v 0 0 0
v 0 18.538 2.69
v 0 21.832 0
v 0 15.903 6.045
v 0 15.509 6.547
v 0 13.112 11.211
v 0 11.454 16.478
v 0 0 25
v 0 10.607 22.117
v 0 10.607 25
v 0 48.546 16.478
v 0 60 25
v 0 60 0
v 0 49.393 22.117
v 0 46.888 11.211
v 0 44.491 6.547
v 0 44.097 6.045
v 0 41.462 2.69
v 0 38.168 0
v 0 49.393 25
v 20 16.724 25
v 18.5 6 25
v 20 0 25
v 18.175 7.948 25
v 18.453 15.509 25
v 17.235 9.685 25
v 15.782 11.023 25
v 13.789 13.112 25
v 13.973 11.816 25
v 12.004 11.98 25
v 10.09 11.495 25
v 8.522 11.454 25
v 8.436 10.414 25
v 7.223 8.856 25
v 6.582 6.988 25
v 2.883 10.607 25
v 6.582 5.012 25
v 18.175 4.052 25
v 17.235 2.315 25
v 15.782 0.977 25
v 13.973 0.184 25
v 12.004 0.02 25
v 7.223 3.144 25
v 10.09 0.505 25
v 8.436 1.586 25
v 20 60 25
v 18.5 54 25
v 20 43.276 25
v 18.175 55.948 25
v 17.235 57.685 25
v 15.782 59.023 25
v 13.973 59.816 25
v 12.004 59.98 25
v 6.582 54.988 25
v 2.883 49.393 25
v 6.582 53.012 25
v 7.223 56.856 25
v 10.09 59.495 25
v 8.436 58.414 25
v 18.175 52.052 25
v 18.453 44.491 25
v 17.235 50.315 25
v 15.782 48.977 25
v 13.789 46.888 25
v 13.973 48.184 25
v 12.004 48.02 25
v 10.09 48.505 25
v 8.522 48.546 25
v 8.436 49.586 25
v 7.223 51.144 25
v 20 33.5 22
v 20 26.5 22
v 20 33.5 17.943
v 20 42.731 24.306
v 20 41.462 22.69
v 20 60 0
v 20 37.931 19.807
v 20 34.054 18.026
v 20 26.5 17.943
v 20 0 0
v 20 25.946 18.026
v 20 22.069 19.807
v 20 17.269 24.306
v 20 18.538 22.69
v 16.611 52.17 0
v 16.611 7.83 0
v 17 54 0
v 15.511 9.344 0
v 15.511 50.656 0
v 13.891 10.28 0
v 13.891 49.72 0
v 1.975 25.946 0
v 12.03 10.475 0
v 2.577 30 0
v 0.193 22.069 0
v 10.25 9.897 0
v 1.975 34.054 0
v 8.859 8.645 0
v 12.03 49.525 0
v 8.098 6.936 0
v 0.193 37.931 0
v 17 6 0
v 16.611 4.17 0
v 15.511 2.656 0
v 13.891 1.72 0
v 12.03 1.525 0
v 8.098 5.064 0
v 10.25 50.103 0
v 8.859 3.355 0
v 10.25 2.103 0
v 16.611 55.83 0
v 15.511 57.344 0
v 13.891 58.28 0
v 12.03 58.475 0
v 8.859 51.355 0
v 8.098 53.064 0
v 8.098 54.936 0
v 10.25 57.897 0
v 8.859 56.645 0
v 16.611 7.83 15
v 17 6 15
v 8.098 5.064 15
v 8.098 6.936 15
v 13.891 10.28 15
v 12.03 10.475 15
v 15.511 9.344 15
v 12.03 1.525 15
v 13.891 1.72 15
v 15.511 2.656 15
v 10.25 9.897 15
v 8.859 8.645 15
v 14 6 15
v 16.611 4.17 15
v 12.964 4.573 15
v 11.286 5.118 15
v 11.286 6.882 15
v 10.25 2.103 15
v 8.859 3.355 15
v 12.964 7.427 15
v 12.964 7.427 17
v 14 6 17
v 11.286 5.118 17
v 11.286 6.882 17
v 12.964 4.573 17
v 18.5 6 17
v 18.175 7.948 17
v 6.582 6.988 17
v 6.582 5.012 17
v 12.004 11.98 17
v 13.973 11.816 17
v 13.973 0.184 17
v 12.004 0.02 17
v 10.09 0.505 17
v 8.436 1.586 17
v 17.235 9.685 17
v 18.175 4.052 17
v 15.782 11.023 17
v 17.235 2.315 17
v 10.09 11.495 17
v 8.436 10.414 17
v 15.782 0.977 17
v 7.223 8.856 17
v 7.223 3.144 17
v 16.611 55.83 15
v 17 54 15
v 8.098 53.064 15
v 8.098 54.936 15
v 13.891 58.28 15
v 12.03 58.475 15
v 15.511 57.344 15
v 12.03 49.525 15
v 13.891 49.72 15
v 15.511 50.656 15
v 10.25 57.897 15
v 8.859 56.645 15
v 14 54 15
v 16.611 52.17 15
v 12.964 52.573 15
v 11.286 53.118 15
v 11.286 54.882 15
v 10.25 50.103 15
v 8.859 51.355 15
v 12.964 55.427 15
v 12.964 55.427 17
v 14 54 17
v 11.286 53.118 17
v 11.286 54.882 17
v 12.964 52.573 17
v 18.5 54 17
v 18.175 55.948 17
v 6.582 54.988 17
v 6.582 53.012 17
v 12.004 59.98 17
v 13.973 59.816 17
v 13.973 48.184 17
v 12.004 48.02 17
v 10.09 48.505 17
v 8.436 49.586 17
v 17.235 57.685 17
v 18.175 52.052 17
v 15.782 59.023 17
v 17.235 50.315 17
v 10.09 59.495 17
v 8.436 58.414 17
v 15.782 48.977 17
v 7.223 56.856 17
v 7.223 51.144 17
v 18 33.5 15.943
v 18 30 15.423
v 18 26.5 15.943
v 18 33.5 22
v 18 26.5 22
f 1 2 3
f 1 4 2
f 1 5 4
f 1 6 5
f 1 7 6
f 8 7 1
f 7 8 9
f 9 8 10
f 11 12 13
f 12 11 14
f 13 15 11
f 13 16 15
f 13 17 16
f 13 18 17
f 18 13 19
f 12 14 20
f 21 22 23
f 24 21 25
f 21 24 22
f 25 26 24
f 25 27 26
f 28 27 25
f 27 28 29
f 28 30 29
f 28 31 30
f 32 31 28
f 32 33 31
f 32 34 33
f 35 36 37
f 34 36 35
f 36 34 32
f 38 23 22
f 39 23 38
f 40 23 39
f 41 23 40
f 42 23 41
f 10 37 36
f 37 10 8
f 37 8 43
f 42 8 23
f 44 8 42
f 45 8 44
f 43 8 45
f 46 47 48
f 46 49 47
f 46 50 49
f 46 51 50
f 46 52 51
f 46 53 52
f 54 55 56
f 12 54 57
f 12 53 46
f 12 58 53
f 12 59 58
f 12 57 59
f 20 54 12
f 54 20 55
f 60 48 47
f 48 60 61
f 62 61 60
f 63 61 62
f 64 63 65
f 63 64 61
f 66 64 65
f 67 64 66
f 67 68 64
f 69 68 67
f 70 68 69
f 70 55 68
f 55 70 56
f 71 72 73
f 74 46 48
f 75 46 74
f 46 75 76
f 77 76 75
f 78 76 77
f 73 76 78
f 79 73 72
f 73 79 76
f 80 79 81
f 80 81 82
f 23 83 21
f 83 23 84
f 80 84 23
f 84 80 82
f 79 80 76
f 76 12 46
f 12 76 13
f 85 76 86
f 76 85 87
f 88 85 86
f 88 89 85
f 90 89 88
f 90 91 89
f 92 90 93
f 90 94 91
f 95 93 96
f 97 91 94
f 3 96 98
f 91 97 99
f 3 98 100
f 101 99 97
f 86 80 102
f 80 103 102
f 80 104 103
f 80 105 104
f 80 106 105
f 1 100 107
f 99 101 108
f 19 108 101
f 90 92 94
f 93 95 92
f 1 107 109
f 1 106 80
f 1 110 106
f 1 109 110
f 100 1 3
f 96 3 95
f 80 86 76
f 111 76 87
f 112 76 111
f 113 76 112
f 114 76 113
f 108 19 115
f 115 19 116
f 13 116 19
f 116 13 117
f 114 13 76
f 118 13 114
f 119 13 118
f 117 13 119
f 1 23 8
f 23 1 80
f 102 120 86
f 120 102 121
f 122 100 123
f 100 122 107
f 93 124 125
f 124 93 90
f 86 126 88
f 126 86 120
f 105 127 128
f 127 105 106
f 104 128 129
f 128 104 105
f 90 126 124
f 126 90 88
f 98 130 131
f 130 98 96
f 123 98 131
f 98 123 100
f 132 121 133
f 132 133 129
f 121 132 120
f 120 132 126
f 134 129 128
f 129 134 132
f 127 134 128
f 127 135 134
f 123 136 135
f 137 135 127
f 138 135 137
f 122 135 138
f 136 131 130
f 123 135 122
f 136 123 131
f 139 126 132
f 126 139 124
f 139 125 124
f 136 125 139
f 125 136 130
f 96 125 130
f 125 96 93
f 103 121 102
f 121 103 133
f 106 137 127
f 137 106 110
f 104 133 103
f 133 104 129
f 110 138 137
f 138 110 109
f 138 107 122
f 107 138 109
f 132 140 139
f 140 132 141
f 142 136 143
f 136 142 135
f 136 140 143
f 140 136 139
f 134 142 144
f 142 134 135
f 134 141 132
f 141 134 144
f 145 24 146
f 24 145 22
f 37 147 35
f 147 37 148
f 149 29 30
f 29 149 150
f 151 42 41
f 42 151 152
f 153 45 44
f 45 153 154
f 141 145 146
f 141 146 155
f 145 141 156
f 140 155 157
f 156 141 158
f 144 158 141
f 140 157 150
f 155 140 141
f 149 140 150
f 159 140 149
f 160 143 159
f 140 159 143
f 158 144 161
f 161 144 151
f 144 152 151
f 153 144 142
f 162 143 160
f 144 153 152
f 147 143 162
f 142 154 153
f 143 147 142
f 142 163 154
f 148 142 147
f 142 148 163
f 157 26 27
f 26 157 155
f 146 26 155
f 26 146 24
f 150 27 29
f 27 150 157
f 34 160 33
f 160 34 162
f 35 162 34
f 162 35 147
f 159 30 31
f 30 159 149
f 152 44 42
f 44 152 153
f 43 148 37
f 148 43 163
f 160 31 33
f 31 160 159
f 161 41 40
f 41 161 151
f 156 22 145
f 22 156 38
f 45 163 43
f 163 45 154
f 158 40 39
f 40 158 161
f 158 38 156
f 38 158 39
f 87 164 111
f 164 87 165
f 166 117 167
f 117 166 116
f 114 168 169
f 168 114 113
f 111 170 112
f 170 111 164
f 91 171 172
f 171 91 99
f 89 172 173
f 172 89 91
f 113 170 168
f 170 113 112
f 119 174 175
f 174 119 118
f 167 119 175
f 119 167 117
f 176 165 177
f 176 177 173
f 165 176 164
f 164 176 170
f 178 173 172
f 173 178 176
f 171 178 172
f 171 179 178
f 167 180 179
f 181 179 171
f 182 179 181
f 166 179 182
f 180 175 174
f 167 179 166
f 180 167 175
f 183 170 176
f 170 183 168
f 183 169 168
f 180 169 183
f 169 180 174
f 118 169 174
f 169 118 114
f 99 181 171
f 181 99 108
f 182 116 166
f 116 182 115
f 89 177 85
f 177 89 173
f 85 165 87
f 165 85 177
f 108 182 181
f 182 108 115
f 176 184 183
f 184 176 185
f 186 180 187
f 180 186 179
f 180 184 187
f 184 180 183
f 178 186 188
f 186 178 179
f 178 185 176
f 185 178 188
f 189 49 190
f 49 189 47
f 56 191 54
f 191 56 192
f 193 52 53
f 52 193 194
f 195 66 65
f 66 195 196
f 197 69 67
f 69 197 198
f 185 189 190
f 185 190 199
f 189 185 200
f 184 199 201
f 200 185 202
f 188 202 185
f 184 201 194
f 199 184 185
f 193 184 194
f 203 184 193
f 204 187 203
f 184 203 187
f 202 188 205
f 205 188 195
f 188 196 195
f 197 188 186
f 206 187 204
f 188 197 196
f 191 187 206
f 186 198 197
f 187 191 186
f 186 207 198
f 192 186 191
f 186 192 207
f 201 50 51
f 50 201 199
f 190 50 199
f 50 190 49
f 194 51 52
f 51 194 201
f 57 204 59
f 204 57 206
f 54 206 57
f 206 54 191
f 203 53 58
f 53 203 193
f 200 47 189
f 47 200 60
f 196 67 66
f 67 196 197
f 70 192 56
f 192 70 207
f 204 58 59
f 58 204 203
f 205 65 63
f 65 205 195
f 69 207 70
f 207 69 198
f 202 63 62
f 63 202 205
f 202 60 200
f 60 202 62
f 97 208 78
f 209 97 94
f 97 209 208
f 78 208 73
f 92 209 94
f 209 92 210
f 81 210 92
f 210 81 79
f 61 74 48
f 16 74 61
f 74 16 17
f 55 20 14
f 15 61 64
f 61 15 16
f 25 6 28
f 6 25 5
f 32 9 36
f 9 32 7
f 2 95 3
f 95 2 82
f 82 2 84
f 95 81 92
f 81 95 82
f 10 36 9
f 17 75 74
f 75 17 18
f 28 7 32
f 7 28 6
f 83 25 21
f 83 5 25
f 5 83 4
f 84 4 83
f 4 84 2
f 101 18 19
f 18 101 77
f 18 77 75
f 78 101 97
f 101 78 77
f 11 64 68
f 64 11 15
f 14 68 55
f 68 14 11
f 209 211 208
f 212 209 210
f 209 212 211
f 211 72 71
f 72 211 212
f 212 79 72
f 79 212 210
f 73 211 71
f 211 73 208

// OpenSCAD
//schrauben sind 2,9 x ~13 blechschrauben
//müssen ersetzt werden durch andere/längere.
//länge der schrauben wird durch oberteil bestimmt.
//22 sind die längsten 2,9er
//v2: befestigungslöcher etwas weiter auseinander (6 statt 6,5mm), haltenase
//idee v3: etwas dicker (x, ca 5mm), dass oben noch die nase einrasten kann
//v4: schrägen ausschnitt etwas nach unten gezogen
//birne damit weiter weg vom schirm
//zentrierlöcher schrauben etwas größer (werden beim druck zugeschmaddert)
dcyl = 39;
union(){
    difference(){
        //grundkörper
        cube([20,60,25]);
        //sackloch zum aufstecken des grundkoerpers
        translate([12.5,6,0]) cylinder(d1=9,d2=9,h=15);
        //zentrierbohrung schraube
        translate([12.5,6,14]) cylinder(d1=3,d2=3,h=15);
        //versenkung befestigungsschraube
        translate([12.5,6,17]) cylinder(d1=12,d2=12,h=15);
        //zweites sackloch
        translate([12.5,60-6,0]) cylinder(d1=9,d2=9,h=15);
        //zentrierbohrung schraube
        translate([12.5,60-6,14]) cylinder(d1=3,d2=3,h=15);
        //versenkung befestigungsschraube
        translate([12.5,60-6,17]) cylinder(d1=12,d2=12,h=15);
        //ausschnitt schräge einfassung der baufassung
        translate([-15,30,10]) rotate([0,45,0]) cylinder(d1=dcyl,d2=dcyl,h=60);
        
    }
    translate([18,30-3.5,14]) cube([2,7,8]);
}
